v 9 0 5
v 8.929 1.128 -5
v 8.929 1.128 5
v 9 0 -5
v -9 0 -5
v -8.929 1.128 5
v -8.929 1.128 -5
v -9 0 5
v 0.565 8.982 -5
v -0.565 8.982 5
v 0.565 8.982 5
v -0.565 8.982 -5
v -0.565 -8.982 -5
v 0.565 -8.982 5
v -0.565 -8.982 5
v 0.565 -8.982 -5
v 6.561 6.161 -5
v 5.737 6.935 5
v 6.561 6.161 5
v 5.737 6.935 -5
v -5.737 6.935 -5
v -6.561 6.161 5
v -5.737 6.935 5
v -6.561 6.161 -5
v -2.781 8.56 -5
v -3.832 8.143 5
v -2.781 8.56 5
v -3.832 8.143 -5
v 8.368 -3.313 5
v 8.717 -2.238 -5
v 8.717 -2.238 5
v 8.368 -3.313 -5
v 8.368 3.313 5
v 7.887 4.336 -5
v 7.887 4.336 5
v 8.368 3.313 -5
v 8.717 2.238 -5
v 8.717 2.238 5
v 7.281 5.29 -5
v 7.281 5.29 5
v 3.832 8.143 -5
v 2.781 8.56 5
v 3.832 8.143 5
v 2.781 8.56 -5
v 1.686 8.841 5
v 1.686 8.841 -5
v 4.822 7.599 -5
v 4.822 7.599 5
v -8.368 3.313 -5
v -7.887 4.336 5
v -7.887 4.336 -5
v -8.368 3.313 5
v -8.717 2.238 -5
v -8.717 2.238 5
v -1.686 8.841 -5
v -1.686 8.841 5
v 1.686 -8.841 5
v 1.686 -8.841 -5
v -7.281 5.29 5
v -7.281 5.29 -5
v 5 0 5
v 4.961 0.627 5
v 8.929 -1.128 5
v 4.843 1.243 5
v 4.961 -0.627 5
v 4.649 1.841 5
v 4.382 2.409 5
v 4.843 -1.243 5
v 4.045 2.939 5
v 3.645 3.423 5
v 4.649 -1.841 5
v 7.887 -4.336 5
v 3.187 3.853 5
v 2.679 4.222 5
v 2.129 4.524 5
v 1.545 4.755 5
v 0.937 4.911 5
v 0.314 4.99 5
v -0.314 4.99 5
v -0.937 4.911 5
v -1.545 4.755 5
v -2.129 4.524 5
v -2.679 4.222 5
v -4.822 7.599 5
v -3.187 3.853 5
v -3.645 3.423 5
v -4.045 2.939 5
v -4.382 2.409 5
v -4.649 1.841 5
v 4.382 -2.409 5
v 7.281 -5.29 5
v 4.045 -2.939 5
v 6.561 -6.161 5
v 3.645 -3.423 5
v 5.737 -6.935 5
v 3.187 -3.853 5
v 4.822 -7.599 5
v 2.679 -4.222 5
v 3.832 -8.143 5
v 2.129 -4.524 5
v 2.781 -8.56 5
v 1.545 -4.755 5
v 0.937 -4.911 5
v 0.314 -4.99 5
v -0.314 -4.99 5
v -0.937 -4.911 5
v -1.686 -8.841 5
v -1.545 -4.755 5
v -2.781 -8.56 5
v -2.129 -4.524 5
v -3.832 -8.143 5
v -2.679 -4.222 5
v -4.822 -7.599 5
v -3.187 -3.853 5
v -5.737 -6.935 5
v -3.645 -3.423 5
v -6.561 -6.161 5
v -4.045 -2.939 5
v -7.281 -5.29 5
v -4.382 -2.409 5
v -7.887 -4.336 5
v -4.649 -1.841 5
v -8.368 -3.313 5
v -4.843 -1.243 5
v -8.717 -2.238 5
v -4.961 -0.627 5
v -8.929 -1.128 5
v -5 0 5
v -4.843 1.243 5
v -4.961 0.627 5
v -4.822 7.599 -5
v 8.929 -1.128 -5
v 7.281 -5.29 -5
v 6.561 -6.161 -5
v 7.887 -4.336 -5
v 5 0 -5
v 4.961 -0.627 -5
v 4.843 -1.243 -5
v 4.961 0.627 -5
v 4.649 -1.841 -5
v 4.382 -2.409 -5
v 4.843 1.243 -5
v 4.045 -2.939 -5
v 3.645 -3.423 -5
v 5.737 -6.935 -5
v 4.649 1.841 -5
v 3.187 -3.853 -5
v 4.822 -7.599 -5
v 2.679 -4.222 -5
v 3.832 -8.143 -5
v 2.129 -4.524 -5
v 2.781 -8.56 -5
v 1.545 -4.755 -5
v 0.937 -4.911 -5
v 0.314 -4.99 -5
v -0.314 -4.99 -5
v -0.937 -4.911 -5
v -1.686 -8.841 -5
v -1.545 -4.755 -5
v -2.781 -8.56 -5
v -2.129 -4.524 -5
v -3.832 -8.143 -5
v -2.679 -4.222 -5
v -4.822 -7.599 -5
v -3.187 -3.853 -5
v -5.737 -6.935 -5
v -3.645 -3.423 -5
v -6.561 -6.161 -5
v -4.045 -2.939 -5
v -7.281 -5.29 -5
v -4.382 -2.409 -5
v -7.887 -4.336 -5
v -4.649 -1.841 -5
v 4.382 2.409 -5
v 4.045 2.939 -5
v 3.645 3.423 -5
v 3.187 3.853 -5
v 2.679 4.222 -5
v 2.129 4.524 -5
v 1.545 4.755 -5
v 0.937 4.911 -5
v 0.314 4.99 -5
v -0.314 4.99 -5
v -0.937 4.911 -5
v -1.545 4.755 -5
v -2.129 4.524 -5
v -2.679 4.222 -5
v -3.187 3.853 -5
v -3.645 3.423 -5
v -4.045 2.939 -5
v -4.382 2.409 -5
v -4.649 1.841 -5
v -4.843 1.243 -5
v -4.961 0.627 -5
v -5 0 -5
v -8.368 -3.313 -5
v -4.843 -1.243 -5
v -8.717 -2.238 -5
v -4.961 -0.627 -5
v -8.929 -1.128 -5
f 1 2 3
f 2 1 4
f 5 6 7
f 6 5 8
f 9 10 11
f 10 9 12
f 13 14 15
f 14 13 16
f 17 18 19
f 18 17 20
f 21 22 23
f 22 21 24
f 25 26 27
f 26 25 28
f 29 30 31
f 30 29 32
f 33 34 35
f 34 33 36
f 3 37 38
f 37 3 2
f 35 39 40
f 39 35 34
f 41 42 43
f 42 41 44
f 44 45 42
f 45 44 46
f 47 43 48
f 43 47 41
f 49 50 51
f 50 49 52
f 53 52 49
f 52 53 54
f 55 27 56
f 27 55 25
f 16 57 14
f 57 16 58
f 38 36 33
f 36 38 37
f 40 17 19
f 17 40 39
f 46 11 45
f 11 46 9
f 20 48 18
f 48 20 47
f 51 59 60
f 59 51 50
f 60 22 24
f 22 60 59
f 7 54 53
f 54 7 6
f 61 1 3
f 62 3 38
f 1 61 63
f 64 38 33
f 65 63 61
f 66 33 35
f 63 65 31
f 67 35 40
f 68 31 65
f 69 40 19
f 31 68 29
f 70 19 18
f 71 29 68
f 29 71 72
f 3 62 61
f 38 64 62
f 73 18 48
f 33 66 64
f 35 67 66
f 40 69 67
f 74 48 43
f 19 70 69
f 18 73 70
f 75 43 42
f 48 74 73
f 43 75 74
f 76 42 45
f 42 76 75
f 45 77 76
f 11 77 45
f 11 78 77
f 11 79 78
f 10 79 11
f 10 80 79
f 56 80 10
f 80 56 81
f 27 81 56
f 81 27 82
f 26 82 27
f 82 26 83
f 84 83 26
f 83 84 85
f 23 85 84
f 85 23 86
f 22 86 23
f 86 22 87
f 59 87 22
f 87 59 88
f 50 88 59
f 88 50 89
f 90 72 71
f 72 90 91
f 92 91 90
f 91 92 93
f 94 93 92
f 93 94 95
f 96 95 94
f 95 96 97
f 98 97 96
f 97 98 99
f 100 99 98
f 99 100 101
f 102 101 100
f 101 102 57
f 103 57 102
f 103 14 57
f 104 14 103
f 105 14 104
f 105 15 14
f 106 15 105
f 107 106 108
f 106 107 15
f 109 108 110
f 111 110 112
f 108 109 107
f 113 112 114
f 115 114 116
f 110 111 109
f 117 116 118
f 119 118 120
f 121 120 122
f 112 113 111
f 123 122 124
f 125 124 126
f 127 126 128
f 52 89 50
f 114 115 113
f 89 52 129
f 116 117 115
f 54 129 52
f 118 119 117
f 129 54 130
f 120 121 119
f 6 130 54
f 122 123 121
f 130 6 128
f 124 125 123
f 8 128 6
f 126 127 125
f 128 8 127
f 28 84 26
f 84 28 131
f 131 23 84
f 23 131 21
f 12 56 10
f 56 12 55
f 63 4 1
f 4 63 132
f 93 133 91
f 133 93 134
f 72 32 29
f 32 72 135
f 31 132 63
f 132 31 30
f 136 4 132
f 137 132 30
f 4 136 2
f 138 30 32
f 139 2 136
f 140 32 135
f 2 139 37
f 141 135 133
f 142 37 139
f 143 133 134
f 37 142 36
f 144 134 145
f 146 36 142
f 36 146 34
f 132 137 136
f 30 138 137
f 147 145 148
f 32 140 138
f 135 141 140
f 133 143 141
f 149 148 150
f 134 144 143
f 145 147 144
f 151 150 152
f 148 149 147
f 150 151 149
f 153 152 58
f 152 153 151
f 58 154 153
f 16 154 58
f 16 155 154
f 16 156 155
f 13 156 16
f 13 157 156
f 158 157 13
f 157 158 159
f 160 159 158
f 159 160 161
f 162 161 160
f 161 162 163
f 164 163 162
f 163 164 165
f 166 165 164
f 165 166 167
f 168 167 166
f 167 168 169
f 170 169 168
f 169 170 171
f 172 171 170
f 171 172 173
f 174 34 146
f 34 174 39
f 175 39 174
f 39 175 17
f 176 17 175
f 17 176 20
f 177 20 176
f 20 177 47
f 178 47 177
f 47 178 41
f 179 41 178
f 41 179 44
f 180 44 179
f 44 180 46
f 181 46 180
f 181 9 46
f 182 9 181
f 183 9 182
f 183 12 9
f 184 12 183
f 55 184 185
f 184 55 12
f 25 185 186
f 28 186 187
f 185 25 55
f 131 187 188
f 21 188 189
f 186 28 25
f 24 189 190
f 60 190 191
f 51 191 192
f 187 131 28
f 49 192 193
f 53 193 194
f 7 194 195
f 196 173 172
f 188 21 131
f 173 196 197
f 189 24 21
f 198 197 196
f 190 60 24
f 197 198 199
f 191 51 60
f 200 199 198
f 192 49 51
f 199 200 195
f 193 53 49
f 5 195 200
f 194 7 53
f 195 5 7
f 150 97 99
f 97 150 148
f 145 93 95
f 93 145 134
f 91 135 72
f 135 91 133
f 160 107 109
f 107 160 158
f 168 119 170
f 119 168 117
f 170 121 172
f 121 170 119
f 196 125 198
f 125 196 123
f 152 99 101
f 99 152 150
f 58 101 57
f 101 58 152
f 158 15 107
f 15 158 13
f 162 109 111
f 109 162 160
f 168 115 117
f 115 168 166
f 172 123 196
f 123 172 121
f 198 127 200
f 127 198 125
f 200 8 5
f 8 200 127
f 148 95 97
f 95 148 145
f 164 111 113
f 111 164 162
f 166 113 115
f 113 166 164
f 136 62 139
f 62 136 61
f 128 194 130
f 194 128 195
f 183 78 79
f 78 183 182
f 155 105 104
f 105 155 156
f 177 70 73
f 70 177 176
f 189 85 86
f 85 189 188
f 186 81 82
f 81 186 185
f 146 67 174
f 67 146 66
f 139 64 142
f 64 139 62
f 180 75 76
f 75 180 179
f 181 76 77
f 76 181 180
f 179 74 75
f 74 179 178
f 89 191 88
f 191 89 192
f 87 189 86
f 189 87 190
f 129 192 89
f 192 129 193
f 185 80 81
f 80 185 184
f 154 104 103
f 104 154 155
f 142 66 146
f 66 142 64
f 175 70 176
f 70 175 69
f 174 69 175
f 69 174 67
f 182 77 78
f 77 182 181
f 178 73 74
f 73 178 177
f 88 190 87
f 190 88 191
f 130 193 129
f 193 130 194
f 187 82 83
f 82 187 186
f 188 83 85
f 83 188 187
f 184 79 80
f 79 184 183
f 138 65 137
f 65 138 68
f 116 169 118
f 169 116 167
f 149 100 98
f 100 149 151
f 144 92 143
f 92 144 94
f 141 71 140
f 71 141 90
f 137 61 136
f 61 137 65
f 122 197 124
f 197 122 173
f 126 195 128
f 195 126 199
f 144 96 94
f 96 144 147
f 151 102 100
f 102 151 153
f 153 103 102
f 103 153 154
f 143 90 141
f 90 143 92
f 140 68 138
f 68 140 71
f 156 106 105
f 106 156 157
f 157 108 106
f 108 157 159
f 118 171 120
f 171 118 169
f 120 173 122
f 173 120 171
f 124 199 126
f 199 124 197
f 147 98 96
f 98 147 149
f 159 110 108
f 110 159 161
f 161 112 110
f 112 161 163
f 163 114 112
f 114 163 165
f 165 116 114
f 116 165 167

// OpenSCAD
$fn = 50;


difference() {
	union() {
		translate(v = [0, 0, -5.0000000000]) {
			cylinder(h = 10, r = 9.0000000000);
		}
	}
	union() {
		translate(v = [0, 0, -100.0000000000]) {
			cylinder(h = 200, r = 5.0000000000);
		}
	}
}
